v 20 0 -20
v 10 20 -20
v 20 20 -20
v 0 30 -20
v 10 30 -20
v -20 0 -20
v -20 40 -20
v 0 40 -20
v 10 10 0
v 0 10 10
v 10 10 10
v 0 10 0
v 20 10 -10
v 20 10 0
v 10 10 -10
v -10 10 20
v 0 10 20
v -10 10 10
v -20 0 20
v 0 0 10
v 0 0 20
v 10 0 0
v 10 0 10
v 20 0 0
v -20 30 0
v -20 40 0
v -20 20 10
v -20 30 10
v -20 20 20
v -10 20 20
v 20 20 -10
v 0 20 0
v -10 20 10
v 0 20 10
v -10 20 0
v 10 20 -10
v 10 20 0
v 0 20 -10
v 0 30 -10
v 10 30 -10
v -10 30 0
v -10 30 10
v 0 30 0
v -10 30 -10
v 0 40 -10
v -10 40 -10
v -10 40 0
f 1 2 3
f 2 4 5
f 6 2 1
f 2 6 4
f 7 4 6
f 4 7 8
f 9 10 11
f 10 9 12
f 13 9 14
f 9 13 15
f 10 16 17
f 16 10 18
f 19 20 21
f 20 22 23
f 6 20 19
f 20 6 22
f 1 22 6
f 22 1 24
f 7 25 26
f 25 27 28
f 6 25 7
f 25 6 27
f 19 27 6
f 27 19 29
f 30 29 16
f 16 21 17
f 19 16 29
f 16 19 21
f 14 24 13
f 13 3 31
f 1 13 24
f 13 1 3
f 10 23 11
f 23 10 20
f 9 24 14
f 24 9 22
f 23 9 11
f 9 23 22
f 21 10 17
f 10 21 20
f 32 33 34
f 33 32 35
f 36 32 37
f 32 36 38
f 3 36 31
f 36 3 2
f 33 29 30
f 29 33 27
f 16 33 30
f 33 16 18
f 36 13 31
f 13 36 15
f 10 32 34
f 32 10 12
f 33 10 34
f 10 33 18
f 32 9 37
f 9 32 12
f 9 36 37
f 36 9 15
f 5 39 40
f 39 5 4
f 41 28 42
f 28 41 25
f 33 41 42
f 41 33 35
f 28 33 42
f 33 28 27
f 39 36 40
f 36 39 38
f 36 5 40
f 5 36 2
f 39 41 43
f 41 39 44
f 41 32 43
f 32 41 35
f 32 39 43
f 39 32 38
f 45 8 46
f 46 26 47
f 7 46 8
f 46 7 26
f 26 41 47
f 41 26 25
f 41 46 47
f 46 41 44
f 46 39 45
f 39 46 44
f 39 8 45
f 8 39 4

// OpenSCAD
//---------------------------
// Multi Cube Test by 5@axes
// Size of each cube = 10 mm
//---------------------------

$fn=100;

Cube_S = 10;


rotate(90,[-1, 0, 0]) translate([-Cube_S*2, Cube_S*2, 0]) rotate(-90,[0, 0, 1]) Model();

module Model() {
    union() {
      cube(Cube_S,center=false);
      translate([Cube_S,0,0]) cube(Cube_S,center=false);
      translate([Cube_S*2,0,0]) cube(Cube_S,center=false);
      translate([Cube_S*3,0,0]) cube(Cube_S,center=false);
      translate([0,Cube_S,0]) cube(Cube_S,center=false);
      translate([0,Cube_S*2,0]) cube(Cube_S,center=false);
      translate([0,Cube_S*3,0]) cube(Cube_S,center=false);
      translate([Cube_S,Cube_S,0]) cube(Cube_S,center=false);
      translate([Cube_S*2,Cube_S,0]) cube(Cube_S,center=false);
      translate([Cube_S,Cube_S*2,0]) cube(Cube_S,center=false);
      translate([Cube_S,Cube_S*3,0]) cube(Cube_S,center=false);
      translate([Cube_S*2,Cube_S*2,0]) cube(Cube_S,center=false); 
      translate([Cube_S*3,Cube_S,0]) cube(Cube_S,center=false);   
        
      translate([0,0,Cube_S]) cube(Cube_S,center=false);
      translate([Cube_S,0,Cube_S]) cube(Cube_S,center=false);
      translate([Cube_S*2,0,Cube_S]) cube(Cube_S,center=false);
      translate([Cube_S*3,0,Cube_S]) cube(Cube_S,center=false);
      translate([0,Cube_S,Cube_S]) cube(Cube_S,center=false);
      translate([0,Cube_S*2,Cube_S]) cube(Cube_S,center=false);
      translate([0,Cube_S*3,Cube_S]) cube(Cube_S,center=false);
      translate([Cube_S,Cube_S,Cube_S]) cube(Cube_S,center=false);
      translate([Cube_S*2,Cube_S,Cube_S]) cube(Cube_S,center=false);
      translate([Cube_S,Cube_S*2,Cube_S]) cube(Cube_S,center=false);   
 
      translate([0,0,Cube_S*2]) cube(Cube_S,center=false);
      translate([Cube_S,0,Cube_S*2]) cube(Cube_S,center=false);
      translate([Cube_S*2,0,Cube_S*2]) cube(Cube_S,center=false);
      translate([0,Cube_S,Cube_S*2]) cube(Cube_S,center=false);
      translate([0,Cube_S*2,Cube_S*2]) cube(Cube_S,center=false);
      translate([Cube_S,Cube_S,Cube_S*2]) cube(Cube_S,center=false);

      translate([0,0,Cube_S*3]) cube(Cube_S,center=false);
      translate([Cube_S,0,Cube_S*3]) cube(Cube_S,center=false);
      translate([0,Cube_S,Cube_S*3]) cube(Cube_S,center = false);
    } 
}
